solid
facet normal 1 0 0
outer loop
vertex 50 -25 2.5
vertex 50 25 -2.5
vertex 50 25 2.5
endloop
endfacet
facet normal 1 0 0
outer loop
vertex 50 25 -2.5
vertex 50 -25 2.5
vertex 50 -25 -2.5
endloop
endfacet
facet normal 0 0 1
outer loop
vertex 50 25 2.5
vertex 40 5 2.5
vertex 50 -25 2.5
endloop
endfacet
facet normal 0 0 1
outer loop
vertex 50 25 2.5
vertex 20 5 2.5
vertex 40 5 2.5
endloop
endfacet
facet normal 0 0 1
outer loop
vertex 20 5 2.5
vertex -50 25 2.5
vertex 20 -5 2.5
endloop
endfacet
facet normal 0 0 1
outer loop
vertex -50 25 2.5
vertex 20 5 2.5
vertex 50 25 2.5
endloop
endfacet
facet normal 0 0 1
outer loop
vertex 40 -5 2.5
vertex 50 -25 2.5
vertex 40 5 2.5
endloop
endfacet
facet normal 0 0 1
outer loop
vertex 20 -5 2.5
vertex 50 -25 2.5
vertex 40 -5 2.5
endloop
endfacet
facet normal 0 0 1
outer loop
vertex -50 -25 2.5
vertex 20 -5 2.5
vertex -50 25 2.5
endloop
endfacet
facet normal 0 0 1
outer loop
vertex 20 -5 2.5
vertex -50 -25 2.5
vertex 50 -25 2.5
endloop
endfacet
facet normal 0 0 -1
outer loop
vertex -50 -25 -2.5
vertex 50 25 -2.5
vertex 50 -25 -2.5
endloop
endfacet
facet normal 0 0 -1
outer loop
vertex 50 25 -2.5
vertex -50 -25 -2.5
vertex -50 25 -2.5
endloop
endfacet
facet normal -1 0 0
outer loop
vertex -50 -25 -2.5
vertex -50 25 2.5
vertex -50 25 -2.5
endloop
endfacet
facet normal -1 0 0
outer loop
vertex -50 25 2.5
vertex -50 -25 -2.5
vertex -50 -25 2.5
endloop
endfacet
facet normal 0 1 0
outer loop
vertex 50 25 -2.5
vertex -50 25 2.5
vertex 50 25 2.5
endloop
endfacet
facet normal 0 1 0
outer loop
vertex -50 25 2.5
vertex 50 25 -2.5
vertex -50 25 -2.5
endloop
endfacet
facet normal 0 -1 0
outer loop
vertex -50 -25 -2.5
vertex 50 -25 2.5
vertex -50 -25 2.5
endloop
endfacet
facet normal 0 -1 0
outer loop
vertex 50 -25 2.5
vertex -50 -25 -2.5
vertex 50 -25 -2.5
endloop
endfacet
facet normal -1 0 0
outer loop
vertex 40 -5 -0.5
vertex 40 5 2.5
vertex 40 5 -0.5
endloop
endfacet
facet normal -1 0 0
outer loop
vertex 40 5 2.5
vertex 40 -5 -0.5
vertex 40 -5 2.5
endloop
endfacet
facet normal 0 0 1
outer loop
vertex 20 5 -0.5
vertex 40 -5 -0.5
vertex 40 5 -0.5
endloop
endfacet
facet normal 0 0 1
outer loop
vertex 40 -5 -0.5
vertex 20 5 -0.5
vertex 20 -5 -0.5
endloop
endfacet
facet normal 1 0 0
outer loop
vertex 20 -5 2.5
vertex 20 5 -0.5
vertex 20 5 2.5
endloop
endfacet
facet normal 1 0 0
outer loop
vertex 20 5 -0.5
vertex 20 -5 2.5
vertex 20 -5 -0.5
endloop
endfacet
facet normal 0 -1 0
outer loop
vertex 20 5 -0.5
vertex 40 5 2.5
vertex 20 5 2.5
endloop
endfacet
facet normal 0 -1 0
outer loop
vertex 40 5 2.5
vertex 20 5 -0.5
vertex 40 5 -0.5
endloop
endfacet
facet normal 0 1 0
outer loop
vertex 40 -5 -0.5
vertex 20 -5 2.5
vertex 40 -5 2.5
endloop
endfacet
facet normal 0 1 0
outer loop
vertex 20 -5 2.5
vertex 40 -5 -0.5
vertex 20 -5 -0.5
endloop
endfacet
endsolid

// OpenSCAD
// Parameters for the flat rectangular plate with slot
plate_length = 100;  // Length of the plate
plate_width = 50;    // Width of the plate
plate_thickness = 5; // Thickness of the plate
slot_length = 20;    // Length of the slot
slot_width = 10;     // Width of the slot
slot_offset = 10;    // Distance of the slot from the shorter edge

// Module to create the flat rectangular plate with slot
module flat_rectangular_plate_with_slot() {
    // Create the main rectangular plate
    difference() {
        cube([plate_length, plate_width, plate_thickness], center = true);
        
        // Create the slot
        translate([plate_length / 2 - slot_offset - slot_length / 2, 0, plate_thickness / 2])
            cube([slot_length, slot_width, plate_thickness + 1], center = true);
    }
}

// Render the model
flat_rectangular_plate_with_slot();
